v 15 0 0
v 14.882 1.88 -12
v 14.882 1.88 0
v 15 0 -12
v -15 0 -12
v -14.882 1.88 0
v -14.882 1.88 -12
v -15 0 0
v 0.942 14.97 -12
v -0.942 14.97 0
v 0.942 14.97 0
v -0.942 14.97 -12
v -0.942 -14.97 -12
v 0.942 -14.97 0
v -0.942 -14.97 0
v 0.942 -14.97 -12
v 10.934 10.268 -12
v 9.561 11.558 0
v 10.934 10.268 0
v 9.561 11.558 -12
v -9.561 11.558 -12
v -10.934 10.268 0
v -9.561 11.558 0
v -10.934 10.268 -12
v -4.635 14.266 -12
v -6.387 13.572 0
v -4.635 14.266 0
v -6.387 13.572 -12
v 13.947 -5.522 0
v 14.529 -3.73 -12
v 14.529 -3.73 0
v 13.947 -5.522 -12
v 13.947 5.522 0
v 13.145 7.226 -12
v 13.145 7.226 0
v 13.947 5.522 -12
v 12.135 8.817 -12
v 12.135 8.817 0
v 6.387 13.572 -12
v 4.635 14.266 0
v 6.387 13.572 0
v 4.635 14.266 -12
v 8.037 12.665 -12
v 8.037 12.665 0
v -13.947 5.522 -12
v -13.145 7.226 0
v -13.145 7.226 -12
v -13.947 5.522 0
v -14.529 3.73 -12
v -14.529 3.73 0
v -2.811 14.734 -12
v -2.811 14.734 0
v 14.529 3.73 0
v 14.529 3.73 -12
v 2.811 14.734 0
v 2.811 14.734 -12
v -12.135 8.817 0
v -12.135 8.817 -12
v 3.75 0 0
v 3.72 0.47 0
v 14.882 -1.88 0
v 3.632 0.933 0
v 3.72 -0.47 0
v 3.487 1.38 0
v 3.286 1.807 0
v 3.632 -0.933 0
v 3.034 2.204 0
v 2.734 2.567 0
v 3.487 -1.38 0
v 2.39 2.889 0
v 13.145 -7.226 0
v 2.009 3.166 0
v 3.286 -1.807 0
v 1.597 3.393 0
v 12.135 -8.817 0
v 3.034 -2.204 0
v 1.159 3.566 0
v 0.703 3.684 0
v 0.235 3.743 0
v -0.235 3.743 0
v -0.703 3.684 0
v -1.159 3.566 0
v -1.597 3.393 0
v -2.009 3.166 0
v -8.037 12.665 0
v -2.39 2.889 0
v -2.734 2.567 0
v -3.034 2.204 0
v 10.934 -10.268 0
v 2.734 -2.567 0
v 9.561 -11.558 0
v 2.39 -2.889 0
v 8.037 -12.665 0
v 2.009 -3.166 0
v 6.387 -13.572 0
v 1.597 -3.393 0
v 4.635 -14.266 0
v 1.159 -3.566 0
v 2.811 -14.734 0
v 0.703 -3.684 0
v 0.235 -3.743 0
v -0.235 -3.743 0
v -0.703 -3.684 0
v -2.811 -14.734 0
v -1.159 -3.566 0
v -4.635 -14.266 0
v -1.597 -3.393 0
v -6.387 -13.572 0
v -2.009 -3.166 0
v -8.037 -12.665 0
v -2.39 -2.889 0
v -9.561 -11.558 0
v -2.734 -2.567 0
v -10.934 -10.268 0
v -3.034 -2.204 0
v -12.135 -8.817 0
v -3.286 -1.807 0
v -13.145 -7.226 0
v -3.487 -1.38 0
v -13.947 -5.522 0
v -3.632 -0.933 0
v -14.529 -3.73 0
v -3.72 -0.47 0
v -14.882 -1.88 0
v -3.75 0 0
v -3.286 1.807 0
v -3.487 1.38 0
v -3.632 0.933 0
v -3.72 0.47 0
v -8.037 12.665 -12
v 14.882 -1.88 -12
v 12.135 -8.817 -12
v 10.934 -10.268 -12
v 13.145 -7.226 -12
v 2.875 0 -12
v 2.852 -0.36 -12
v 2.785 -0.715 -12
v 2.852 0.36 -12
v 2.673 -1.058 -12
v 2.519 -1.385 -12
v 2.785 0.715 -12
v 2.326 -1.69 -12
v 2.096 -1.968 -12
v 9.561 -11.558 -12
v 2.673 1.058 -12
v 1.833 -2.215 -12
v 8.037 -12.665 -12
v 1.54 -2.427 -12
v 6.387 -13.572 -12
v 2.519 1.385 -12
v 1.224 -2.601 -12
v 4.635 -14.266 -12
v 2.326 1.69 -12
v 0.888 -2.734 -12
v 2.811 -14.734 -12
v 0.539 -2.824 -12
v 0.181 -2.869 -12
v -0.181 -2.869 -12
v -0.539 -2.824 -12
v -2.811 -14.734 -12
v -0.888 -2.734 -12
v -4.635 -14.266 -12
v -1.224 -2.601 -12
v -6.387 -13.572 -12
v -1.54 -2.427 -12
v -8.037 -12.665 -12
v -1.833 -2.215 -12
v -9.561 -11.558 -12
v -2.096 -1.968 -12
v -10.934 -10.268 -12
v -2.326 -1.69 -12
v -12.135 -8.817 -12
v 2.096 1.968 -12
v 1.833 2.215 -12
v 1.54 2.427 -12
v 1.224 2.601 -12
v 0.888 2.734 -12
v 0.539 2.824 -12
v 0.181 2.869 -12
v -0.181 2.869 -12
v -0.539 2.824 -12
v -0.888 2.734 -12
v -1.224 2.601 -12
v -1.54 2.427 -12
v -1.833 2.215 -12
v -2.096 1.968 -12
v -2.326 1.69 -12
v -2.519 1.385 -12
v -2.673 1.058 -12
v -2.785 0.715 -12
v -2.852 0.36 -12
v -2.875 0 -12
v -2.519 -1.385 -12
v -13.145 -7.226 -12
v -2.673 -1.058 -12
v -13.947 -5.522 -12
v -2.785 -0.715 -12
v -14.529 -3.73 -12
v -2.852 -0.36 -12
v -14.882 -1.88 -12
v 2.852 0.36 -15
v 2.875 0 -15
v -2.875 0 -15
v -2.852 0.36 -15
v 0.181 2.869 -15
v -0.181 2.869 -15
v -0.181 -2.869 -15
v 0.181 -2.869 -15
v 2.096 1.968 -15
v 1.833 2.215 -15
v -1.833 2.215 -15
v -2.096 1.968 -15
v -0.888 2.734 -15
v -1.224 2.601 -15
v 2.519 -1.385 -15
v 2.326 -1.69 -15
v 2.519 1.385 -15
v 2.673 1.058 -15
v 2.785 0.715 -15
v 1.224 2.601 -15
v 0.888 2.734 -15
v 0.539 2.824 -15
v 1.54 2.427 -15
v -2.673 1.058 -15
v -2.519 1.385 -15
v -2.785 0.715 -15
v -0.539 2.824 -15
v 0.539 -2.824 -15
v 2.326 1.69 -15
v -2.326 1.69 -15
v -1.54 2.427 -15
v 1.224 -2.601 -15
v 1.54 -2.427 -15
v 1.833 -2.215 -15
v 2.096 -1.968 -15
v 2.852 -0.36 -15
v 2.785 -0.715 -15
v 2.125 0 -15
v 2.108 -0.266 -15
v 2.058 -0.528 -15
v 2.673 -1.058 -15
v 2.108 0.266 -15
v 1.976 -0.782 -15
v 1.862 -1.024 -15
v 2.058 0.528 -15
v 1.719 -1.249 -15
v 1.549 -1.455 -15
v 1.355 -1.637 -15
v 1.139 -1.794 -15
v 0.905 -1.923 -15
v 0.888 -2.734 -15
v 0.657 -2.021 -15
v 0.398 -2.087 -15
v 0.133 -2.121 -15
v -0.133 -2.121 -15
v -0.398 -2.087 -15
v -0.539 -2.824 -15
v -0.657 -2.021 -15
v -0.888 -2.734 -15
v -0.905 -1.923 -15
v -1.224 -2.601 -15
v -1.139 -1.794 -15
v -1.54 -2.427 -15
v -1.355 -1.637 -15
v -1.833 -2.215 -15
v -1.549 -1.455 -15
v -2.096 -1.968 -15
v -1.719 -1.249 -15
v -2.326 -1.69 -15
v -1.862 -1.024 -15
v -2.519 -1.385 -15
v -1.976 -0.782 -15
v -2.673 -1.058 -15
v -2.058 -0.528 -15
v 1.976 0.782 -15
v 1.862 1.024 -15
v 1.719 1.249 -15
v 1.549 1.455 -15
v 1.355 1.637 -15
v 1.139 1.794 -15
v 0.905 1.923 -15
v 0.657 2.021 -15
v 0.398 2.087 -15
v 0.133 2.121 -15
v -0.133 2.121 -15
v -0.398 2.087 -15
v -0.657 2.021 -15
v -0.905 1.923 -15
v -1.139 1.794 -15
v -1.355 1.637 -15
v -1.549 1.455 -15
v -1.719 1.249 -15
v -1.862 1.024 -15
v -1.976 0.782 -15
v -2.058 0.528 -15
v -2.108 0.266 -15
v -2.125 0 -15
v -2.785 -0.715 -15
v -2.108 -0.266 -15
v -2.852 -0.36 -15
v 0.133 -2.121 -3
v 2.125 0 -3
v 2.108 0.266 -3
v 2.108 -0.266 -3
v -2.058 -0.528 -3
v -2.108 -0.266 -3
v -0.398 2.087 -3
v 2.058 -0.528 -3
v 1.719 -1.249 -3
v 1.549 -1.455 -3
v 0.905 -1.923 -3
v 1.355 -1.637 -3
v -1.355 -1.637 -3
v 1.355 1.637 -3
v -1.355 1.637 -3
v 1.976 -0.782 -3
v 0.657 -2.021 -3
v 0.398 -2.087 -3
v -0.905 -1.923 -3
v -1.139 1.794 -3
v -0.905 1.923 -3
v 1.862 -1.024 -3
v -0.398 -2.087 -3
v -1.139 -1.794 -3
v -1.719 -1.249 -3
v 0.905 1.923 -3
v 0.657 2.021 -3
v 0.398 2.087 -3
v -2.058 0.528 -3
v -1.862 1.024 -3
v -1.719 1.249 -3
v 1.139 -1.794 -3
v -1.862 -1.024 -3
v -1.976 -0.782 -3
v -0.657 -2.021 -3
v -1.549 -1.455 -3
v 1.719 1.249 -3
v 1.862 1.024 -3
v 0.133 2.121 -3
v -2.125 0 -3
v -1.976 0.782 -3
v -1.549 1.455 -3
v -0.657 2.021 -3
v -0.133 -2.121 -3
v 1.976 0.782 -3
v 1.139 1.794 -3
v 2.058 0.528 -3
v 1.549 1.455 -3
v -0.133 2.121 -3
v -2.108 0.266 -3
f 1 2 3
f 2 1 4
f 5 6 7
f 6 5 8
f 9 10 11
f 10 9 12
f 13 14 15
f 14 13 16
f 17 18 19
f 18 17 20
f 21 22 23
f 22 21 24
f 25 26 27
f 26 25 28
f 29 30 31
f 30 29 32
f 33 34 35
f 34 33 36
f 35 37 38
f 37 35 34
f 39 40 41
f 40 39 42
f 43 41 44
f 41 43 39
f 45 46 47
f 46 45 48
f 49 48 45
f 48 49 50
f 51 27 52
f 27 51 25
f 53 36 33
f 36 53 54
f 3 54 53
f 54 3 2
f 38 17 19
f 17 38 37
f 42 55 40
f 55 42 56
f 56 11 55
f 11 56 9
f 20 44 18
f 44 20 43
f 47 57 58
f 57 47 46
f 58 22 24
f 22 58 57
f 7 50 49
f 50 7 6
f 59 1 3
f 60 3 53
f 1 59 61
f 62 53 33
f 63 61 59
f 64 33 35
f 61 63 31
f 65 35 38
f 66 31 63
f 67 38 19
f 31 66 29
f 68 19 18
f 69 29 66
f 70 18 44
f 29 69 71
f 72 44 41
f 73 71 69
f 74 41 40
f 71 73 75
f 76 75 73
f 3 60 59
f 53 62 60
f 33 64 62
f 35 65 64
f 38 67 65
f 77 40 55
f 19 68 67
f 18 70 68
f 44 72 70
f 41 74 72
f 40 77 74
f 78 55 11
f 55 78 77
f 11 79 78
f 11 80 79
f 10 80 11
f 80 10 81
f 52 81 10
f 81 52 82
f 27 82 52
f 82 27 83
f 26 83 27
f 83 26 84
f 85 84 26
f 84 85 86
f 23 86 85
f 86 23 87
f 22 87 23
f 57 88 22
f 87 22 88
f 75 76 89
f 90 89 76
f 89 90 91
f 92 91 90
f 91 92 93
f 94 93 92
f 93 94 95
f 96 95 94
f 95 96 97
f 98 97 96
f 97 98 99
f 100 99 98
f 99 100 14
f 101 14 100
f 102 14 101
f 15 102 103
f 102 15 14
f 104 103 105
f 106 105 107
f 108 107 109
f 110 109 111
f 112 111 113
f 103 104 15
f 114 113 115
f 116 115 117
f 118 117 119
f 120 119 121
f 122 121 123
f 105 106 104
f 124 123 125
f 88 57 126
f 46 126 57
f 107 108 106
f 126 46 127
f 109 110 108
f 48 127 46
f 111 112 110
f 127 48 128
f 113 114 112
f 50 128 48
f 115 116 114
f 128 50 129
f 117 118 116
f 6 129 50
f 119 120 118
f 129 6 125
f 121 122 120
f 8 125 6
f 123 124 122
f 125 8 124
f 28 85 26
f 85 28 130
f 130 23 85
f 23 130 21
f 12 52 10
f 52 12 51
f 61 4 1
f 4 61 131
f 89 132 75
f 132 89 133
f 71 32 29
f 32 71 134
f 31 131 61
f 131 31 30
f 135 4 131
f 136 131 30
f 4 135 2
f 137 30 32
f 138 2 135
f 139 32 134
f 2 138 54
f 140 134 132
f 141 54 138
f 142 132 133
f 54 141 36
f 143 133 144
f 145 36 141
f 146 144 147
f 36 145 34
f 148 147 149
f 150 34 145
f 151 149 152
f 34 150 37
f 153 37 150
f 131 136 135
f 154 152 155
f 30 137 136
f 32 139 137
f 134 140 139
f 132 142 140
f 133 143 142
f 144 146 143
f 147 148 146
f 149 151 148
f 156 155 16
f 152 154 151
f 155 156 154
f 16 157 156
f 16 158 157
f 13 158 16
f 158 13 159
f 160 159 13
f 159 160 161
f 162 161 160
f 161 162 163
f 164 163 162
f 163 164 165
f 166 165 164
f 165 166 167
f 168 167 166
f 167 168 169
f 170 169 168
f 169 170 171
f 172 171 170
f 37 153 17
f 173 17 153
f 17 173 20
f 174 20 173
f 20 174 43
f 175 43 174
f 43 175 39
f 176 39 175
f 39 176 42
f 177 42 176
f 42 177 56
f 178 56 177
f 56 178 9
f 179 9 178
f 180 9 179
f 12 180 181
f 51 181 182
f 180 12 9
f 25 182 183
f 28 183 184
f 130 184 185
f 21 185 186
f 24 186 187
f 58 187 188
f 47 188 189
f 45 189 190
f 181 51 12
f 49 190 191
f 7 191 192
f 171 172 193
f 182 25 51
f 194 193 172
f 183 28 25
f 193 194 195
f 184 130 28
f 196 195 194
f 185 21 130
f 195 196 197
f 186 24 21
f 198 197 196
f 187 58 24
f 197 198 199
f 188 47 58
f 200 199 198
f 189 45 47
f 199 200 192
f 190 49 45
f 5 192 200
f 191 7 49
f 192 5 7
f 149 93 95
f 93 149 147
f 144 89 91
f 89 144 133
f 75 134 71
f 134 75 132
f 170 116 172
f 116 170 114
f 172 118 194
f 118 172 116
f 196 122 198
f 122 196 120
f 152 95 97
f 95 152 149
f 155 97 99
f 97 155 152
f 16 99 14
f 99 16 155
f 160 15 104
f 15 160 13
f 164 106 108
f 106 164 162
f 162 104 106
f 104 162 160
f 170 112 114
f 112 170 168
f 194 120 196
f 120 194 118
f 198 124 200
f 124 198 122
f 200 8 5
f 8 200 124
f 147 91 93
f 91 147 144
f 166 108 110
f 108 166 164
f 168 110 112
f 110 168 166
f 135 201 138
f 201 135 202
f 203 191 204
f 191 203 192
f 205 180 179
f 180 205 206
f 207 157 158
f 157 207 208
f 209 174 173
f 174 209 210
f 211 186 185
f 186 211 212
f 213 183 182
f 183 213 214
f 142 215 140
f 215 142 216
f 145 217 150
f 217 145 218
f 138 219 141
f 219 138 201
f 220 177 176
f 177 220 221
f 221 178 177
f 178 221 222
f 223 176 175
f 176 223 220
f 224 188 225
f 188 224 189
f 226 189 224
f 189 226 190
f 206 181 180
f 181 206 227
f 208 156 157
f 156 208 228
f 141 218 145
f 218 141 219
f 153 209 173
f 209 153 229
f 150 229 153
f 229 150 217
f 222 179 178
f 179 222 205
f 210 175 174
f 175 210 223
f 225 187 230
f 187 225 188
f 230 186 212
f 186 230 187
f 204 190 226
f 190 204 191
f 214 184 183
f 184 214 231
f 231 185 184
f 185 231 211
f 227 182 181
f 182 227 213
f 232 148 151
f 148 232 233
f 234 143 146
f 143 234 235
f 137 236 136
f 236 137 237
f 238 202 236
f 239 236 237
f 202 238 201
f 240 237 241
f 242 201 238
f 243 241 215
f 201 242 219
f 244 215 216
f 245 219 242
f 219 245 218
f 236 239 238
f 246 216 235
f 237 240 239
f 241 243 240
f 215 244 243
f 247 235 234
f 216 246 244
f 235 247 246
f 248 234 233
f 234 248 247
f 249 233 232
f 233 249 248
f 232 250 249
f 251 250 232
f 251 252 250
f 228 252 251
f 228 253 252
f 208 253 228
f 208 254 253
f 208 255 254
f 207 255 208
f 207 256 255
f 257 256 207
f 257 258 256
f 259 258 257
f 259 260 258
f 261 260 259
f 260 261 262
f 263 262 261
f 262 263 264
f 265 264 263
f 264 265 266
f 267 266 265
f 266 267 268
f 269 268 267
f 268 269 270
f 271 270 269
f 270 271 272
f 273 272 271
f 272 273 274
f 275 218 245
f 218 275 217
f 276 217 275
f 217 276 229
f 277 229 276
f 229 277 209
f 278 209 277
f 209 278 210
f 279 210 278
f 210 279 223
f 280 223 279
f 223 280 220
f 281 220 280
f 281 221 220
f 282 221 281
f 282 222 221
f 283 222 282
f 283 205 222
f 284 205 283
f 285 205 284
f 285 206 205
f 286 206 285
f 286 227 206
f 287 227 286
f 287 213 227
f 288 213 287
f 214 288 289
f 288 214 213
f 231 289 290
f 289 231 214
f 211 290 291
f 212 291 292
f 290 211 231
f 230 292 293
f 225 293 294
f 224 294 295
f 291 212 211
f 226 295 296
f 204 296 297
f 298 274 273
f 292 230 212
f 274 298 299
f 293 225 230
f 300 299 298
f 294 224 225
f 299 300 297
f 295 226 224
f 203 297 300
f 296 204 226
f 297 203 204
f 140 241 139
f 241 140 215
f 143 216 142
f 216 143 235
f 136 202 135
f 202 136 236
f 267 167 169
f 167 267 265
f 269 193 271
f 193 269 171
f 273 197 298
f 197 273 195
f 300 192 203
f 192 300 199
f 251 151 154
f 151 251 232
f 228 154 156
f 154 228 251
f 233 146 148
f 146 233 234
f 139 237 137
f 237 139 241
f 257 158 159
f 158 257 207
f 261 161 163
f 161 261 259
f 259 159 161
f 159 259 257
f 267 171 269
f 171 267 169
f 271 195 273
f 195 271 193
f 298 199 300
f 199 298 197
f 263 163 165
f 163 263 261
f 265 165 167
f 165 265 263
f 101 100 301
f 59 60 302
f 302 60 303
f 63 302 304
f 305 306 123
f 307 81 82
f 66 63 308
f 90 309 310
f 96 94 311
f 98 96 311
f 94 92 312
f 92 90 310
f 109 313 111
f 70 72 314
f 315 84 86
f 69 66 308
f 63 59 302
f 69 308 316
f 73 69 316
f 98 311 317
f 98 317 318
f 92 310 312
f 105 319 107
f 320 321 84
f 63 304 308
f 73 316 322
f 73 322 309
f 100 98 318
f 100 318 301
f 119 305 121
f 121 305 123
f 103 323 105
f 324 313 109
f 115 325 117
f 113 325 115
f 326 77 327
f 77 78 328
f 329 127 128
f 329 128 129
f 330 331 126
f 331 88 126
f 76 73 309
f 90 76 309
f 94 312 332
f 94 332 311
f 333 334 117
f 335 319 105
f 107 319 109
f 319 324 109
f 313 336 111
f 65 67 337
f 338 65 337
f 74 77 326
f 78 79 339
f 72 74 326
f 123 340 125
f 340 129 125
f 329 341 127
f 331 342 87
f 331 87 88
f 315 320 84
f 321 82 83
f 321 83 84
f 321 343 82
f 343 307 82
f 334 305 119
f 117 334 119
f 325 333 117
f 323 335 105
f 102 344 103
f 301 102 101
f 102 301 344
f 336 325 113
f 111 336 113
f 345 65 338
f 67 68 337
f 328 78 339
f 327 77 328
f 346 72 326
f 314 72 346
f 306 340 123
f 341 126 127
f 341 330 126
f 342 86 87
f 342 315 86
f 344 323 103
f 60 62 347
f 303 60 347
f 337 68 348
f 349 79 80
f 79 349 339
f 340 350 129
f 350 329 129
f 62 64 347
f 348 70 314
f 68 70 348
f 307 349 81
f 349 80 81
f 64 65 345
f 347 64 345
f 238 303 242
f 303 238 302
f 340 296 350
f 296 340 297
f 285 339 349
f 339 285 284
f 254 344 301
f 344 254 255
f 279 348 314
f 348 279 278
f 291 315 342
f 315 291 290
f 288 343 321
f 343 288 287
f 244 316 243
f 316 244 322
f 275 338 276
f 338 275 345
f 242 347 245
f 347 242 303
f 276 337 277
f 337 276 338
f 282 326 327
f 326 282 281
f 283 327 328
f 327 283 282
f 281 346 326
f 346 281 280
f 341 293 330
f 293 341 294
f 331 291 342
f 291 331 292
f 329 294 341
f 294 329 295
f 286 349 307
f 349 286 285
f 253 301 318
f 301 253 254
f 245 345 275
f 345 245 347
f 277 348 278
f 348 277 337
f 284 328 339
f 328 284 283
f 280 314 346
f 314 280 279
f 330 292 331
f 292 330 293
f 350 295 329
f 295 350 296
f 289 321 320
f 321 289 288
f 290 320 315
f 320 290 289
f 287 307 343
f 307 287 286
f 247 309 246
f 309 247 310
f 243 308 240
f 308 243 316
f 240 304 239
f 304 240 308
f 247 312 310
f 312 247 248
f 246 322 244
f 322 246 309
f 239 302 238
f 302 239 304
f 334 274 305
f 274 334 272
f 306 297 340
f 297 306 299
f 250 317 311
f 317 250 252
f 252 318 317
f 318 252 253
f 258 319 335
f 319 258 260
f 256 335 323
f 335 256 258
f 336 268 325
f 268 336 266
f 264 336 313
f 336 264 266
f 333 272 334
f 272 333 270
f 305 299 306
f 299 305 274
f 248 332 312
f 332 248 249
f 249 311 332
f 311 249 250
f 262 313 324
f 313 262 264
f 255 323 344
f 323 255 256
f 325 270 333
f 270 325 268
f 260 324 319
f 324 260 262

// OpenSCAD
$fn = 50;


difference() {
	union() {
		translate(v = [0, 0, -12.0000000000]) {
			cylinder(h = 12, r = 15.0000000000);
		}
		#translate(v = [0, 0, -15.0000000000]) {
			cylinder(h = 15, r = 2.8750000000);
		}
	}
	union() {
		translate(v = [0, 0, 0]) {
			rotate(a = [0, 0, 0]) {
				difference() {
					union() {
						translate(v = [0, 0, -15.0000000000]) {
							cylinder(h = 15, r = 2.0000000000);
						}
						translate(v = [0, 0, -3]) {
							cylinder(h = 3, r1 = 2.1250000000, r2 = 3.7500000000);
						}
						translate(v = [0, 0, -15.0000000000]) {
							cylinder(h = 15, r = 2.1250000000);
						}
						translate(v = [0, 0, -15.0000000000]) {
							cylinder(h = 15, r = 2.0000000000);
						}
					}
					union();
				}
			}
		}
	}
}
